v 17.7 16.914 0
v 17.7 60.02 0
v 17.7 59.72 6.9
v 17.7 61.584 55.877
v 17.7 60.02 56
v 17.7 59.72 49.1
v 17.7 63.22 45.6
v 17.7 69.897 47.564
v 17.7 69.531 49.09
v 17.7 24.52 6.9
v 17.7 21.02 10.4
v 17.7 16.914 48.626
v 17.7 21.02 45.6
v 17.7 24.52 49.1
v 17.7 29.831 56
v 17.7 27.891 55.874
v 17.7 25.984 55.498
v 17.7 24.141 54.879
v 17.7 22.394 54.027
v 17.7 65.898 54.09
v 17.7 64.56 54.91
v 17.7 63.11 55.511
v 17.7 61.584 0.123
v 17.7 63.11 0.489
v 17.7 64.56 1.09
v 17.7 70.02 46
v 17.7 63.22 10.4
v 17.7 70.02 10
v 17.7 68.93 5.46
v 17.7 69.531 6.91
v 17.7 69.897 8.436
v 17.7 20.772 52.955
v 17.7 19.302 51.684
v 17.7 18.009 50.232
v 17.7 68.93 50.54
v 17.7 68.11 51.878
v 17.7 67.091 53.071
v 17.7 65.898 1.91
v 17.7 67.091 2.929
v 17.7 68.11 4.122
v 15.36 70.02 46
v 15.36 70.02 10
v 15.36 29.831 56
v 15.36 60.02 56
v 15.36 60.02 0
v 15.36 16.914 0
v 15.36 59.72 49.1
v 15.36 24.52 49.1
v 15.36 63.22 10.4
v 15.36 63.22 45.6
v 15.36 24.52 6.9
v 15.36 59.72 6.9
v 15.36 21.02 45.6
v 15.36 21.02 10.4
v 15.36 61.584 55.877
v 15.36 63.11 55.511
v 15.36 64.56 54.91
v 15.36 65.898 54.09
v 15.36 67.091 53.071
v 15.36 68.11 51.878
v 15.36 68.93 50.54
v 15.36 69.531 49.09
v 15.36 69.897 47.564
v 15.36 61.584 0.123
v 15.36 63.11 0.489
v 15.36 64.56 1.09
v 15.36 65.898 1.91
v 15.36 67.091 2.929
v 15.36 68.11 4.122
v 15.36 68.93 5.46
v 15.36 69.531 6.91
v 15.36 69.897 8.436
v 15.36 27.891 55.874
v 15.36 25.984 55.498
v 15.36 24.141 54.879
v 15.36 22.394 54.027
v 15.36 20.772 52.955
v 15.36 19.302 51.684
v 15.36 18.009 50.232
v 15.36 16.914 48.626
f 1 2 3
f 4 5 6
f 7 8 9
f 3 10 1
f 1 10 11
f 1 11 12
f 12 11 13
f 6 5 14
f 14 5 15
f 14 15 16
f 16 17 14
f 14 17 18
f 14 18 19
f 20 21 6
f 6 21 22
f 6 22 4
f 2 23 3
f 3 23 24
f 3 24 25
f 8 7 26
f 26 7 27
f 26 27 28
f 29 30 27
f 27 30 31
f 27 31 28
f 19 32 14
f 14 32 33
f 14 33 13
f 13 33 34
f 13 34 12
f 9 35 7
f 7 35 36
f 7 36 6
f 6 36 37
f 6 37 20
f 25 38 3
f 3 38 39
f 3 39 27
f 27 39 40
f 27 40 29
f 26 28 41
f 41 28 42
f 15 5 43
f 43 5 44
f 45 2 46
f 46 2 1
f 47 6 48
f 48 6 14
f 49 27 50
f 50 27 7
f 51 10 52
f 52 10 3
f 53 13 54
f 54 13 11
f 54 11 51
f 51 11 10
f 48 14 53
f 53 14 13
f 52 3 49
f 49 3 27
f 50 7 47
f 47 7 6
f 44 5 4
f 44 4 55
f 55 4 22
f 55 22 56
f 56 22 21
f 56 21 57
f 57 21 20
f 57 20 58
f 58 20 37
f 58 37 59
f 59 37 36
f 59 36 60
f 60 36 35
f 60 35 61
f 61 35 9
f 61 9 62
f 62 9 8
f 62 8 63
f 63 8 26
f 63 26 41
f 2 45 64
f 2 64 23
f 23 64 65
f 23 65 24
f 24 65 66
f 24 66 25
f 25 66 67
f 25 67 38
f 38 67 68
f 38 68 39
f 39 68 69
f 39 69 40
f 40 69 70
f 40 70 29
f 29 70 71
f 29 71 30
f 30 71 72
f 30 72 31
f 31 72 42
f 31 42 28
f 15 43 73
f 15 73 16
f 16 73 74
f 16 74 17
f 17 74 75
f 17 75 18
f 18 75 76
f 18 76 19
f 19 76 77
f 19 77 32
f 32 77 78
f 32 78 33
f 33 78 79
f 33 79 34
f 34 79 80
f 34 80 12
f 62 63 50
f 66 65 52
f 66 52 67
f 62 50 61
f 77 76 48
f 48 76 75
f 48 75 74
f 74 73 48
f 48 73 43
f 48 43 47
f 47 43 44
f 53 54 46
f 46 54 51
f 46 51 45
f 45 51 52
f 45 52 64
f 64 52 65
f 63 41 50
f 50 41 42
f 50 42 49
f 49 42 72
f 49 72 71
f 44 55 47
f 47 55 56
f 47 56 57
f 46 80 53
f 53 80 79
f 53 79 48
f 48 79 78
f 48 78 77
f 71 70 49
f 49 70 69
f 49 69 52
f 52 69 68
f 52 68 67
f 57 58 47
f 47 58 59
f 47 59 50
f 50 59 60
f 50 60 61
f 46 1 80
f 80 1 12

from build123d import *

# Parameters (mm, degrees)
BOSS_EXTRUDE1_DEPTH = 56
SKETCH14_W          = 42.2
SKETCH14_H          = 42.2
CUT_EXTRUDE1_DEPTH  = 56
CHAMFER1_SIZE       = 3.5
FILLET1_R           = 10
SKETCH16_W          = 12.4
SKETCH16_H          = 23
CUT_EXTRUDE3_DEPTH  = 95.009532523
CUT_EXTRUDE4_REACH  = 93.39
SKETCH17_W          = 15.453545708
SKETCH17_H          = 18
FILLET4_R           = 15
CUT_EXTRUDE5_DEPTH  = 92.389771857


with BuildPart() as part:
    # Sketch1 → Boss-Extrude1 (new body)
    with BuildSketch(Plane.XY):
        with BuildLine():
            Line((13.02, -7.9417418), (17.7, -7.9417418))
            Line((17.7, -7.9417418), (17.7, 70.02))
            Line((17.7, 70.02), (-10.566443095, 70.02))
            Line((-10.566443095, 70.02), (-10.566443095, 13.02))
            Line((-10.566443095, 13.02), (-5.317126718, 13.02))
            Line((-5.317126718, 13.02), (-4.287512407, 13.02))
            ThreePointArc((-4.287512407, 13.02), (-3.319474451, 12.619025549), (-2.9185, 11.650987593))
            Line((-2.9185, 11.650987593), (-2.9185, 11.539212407))
            ThreePointArc((-2.9185, 11.539212407), (-3.319474451, 10.571174451), (-4.287512407, 10.1702))
            Line((-4.287512407, 10.1702), (-6.476788598, 10.1702))
            ThreePointArc((-6.476788598, 10.1702), (-7.136510935, 9.729114651), (-6.981020848, 8.950903446))
            Line((-6.981020848, 8.950903446), (-3.672257405, 5.649701928))
            ThreePointArc((-3.672257405, 5.649701928), (-2.746830644, 5.032499411), (-1.655778399, 4.8158))
            Line((-1.655778399, 4.8158), (1.655778399, 4.8158))
            ThreePointArc((1.655778399, 4.8158), (2.746830644, 5.032499411), (3.672257405, 5.649701928))
            Line((3.672257405, 5.649701928), (6.981020848, 8.950903446))
            ThreePointArc((6.981020848, 8.950903446), (7.136510935, 9.729114651), (6.476788598, 10.1702))
            Line((6.476788598, 10.1702), (4.287512407, 10.1702))
            ThreePointArc((4.287512407, 10.1702), (3.319474451, 10.571174451), (2.9185, 11.539212407))
            Line((2.9185, 11.539212407), (2.9185, 11.650987593))
            ThreePointArc((2.9185, 11.650987593), (3.319474451, 12.619025549), (4.287512407, 13.02))
            Line((4.287512407, 13.02), (6.332886163, 13.02))
            Line((6.332886163, 13.02), (10.562594215, 13.019824354))
            ThreePointArc((10.562594215, 13.019824354), (12.303594776, 12.313982883), (13.019956614, 10.577284622))
            Line((13.019956614, 10.577284622), (13.02, 4.287469289))
            ThreePointArc((13.02, 4.287469289), (12.619025549, 3.319431332), (11.650987593, 2.918456882))
            Line((11.650987593, 2.918456882), (11.539212407, 2.918456882))
            ThreePointArc((11.539212407, 2.918456882), (10.571174451, 3.319431332), (10.1702, 4.287469289))
            Line((10.1702, 4.287469289), (10.1702, 6.402089023))
            ThreePointArc((10.1702, 6.402089023), (9.733877283, 7.055496588), (8.963146507, 6.90287605))
            Line((8.963146507, 6.90287605), (5.667020993, 3.614283579))
            ThreePointArc((5.667020993, 3.614283579), (5.046449321, 2.687255303), (4.8285, 1.593185507))
            Line((4.8285, 1.593185507), (4.8285, -1.593185507))
            ThreePointArc((4.8285, -1.593185507), (5.046449321, -2.687255303), (5.667020993, -3.614283579))
            Line((5.667020993, -3.614283579), (8.963146507, -6.90287605))
            ThreePointArc((8.963146507, -6.90287605), (9.733877283, -7.055496588), (10.1702, -6.402089023))
            Line((10.1702, -6.402089023), (10.1702, -4.287469289))
            ThreePointArc((10.1702, -4.287469289), (10.571174451, -3.319431332), (11.539212407, -2.918456882))
            Line((11.539212407, -2.918456882), (11.650987593, -2.918456882))
            ThreePointArc((11.650987593, -2.918456882), (12.619025549, -3.319431332), (13.02, -4.287469289))
            Line((13.02, -4.287469289), (13.02, -5.3170836))
            Line((13.02, -5.3170836), (13.02, -7.9417418))
        make_face()
    extrude(amount=BOSS_EXTRUDE1_DEPTH)

    # Sketch14 → Cut-Extrude1 (cut)
    with BuildSketch(Plane(origin=(17.7, 0, 0), x_dir=(0, 0, -1), z_dir=(1, 0, 0))):
        with Locations((-28, 42.12)):
            Rectangle(SKETCH14_W, SKETCH14_H)
    extrude(amount=-CUT_EXTRUDE1_DEPTH, mode=Mode.SUBTRACT)

    # Chamfer1
    chamfer1_edges = [part.edges().sort_by_distance(p)[0] for p in [
        (3.566778452, 21.02, 49.1),
        (3.566778452, 63.22, 49.1),
        (3.566778452, 63.22, 6.9),
        (3.566778452, 21.02, 6.9),
    ]]
    chamfer(chamfer1_edges, length=CHAMFER1_SIZE)

    # Fillet1
    fillet1_edges = [part.edges().sort_by_distance(p)[0] for p in [
        (3.566778452, 70.02, 56),
        (3.566778452, 70.02, 0),
    ]]
    fillet(fillet1_edges, radius=FILLET1_R)

    # Sketch16 → Cut-Extrude3 (cut, through all)
    with BuildSketch(Plane(origin=(17.7, 0, 0), x_dir=(0, 0, -1), z_dir=(1, 0, 0))):
        with Locations((-49.8, 3.5582582)):
            Rectangle(SKETCH16_W, SKETCH16_H)
    extrude(amount=-CUT_EXTRUDE3_DEPTH, mode=Mode.SUBTRACT)

    # Sketch17 → Cut-Extrude4 (cut, up to next)
    with BuildSketch(Plane.XY.offset(56), mode=Mode.PRIVATE) as cut_extrude4_sk1:
        with Locations((-5.893215949, 42.12)):
            Rectangle(SKETCH17_W, SKETCH17_H)
    cut_extrude4_tool1 = extrude(cut_extrude4_sk1.sketch, amount=-CUT_EXTRUDE4_REACH, mode=Mode.PRIVATE) & part.part
    add(cut_extrude4_tool1.solids().sort_by_distance((-5.893216, 42.12, 56))[0], mode=Mode.SUBTRACT)

    # Fillet4
    # the kernel refuses this fillet: 15 mm, written as the material it takes off along each edge
    with BuildSketch(Plane(origin=(54.632370625, 15.0582582, 56), x_dir=(0, 1, 0), z_dir=(-1, 0, 0))) as fillet4_piece_1:
        with BuildLine():
            CenterArc((14.77294825, 15), FILLET4_R, 189.98168298, 80.01831702)
            Line((0, 12.4), (-0.295458965, 12.348))
            ThreePointArc((-0.295458965, 12.348), (-0.3, 6.2), (-0.3, 0))
            Line((-0.3, 0), (0, -0.3))
            Line((0, -0.3), (14.77294825, -0.3))
            Line((14.77294825, -0.3), (14.77294825, 0))
        make_face()
    extrude(amount=102.131184346, mode=Mode.SUBTRACT)

    # Sketch18 → Cut-Extrude5 (cut, through all)
    with BuildSketch(Plane(origin=(0, 0, 0), x_dir=(-1, 0, 0), z_dir=(0, 0, -1))):
        Polygon((-15.359697471, 16.914250509), (-37.368077548, 16.914250509), (-37.368077548, -12.201573967), (-15.359697471, -12.201573967), (14.082488106, -12.201573967), (14.082488106, 72.835801267), (-15.359697471, 72.835801267), align=None)
    extrude(amount=-CUT_EXTRUDE5_DEPTH, mode=Mode.SUBTRACT)


solid = part.part
